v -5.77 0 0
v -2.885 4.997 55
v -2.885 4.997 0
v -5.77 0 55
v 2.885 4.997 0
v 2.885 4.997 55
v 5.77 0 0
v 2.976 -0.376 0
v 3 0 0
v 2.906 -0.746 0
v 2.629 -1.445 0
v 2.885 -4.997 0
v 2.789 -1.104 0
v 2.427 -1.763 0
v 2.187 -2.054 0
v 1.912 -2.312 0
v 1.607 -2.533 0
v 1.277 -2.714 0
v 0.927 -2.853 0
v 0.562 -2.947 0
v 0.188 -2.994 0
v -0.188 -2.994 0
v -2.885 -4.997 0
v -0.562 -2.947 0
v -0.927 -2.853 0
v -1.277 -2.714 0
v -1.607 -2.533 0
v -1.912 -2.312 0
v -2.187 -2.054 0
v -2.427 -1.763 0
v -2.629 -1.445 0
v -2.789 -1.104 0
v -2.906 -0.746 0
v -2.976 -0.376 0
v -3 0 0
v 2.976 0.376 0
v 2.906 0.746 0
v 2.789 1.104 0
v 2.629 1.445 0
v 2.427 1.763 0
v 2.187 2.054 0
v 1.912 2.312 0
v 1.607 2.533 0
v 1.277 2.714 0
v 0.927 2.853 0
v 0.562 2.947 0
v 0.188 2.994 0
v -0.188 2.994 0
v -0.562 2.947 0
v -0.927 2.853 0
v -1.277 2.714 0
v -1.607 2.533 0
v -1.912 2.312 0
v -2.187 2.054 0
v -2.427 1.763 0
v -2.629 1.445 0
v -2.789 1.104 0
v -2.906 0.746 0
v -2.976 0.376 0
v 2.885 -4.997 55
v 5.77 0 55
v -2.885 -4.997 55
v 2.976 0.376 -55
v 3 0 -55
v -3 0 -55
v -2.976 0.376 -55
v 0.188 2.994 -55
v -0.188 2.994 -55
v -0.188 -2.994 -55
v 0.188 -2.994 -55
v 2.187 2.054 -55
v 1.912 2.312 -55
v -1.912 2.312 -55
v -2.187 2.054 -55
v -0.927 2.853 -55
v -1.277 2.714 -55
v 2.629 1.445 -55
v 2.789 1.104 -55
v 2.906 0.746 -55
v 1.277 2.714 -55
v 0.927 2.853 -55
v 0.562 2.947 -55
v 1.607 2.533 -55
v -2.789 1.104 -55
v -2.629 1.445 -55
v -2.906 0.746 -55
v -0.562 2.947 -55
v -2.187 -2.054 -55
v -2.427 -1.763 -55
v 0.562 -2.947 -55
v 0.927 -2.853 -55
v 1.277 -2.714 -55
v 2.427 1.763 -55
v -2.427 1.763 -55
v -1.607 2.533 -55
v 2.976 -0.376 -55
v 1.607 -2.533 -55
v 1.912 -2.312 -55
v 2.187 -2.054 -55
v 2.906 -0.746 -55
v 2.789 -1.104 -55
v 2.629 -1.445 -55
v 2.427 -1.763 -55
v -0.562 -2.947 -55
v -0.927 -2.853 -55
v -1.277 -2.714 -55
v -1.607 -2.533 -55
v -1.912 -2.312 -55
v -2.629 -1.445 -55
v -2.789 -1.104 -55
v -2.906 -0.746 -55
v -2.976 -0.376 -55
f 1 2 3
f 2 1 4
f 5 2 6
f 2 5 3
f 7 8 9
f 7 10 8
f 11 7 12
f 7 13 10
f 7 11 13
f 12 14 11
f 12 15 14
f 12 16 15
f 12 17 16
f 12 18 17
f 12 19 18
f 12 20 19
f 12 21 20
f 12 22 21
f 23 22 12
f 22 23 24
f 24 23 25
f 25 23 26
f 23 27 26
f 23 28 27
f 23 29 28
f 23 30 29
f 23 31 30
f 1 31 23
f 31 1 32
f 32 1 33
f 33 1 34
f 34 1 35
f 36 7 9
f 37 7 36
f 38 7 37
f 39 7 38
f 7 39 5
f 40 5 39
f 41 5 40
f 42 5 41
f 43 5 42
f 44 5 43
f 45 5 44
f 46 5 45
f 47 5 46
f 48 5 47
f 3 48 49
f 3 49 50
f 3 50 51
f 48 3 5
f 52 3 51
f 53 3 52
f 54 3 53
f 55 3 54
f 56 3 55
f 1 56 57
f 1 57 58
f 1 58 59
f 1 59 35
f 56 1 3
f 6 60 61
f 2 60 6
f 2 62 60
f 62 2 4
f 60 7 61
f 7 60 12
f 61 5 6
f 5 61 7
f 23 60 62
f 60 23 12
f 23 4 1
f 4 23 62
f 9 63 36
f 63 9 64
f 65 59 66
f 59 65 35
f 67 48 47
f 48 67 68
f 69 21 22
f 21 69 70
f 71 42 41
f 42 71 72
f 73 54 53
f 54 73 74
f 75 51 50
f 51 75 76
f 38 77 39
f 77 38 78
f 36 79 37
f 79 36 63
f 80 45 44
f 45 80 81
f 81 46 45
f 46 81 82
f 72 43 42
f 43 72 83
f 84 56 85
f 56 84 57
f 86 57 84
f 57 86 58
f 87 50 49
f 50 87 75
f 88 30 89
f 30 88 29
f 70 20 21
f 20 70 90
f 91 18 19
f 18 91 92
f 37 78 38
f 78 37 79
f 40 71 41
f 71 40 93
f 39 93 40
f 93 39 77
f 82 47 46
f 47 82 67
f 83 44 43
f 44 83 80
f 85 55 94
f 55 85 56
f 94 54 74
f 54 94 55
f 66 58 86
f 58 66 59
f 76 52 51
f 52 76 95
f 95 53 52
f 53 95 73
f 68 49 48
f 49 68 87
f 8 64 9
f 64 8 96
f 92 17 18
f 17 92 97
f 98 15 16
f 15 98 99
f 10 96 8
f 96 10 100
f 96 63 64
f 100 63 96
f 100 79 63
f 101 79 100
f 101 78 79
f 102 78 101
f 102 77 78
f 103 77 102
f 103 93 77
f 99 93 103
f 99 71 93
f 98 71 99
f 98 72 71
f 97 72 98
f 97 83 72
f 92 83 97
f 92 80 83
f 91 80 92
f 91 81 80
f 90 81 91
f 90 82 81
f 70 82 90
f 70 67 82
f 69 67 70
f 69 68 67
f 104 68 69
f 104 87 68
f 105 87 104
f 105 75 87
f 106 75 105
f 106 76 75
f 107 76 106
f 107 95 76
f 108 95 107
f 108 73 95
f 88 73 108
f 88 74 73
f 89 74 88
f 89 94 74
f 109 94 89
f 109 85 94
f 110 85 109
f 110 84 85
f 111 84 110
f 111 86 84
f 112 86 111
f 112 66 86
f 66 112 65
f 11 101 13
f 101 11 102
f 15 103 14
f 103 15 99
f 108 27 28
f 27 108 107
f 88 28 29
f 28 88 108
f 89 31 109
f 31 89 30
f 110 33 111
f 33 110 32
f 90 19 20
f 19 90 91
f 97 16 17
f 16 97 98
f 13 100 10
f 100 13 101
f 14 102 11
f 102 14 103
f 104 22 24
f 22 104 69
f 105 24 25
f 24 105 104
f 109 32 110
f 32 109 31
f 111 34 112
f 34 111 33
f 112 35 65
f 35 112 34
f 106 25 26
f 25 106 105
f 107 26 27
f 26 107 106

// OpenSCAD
$fn = 50;


difference() {
	union() {
		linear_extrude(height = 55) {
			polygon(points = [[5.7700000000, 0.0000000000], [2.8850000000, 4.9969665798], [-2.8850000000, 4.9969665798], [-5.7700000000, 0.0000000000], [-2.8850000000, -4.9969665798], [2.8850000000, -4.9969665798]]);
		}
		translate(v = [0, 0, -55]) {
			cylinder(h = 55, r = 3.0000000000);
		}
	}
	union();
}
